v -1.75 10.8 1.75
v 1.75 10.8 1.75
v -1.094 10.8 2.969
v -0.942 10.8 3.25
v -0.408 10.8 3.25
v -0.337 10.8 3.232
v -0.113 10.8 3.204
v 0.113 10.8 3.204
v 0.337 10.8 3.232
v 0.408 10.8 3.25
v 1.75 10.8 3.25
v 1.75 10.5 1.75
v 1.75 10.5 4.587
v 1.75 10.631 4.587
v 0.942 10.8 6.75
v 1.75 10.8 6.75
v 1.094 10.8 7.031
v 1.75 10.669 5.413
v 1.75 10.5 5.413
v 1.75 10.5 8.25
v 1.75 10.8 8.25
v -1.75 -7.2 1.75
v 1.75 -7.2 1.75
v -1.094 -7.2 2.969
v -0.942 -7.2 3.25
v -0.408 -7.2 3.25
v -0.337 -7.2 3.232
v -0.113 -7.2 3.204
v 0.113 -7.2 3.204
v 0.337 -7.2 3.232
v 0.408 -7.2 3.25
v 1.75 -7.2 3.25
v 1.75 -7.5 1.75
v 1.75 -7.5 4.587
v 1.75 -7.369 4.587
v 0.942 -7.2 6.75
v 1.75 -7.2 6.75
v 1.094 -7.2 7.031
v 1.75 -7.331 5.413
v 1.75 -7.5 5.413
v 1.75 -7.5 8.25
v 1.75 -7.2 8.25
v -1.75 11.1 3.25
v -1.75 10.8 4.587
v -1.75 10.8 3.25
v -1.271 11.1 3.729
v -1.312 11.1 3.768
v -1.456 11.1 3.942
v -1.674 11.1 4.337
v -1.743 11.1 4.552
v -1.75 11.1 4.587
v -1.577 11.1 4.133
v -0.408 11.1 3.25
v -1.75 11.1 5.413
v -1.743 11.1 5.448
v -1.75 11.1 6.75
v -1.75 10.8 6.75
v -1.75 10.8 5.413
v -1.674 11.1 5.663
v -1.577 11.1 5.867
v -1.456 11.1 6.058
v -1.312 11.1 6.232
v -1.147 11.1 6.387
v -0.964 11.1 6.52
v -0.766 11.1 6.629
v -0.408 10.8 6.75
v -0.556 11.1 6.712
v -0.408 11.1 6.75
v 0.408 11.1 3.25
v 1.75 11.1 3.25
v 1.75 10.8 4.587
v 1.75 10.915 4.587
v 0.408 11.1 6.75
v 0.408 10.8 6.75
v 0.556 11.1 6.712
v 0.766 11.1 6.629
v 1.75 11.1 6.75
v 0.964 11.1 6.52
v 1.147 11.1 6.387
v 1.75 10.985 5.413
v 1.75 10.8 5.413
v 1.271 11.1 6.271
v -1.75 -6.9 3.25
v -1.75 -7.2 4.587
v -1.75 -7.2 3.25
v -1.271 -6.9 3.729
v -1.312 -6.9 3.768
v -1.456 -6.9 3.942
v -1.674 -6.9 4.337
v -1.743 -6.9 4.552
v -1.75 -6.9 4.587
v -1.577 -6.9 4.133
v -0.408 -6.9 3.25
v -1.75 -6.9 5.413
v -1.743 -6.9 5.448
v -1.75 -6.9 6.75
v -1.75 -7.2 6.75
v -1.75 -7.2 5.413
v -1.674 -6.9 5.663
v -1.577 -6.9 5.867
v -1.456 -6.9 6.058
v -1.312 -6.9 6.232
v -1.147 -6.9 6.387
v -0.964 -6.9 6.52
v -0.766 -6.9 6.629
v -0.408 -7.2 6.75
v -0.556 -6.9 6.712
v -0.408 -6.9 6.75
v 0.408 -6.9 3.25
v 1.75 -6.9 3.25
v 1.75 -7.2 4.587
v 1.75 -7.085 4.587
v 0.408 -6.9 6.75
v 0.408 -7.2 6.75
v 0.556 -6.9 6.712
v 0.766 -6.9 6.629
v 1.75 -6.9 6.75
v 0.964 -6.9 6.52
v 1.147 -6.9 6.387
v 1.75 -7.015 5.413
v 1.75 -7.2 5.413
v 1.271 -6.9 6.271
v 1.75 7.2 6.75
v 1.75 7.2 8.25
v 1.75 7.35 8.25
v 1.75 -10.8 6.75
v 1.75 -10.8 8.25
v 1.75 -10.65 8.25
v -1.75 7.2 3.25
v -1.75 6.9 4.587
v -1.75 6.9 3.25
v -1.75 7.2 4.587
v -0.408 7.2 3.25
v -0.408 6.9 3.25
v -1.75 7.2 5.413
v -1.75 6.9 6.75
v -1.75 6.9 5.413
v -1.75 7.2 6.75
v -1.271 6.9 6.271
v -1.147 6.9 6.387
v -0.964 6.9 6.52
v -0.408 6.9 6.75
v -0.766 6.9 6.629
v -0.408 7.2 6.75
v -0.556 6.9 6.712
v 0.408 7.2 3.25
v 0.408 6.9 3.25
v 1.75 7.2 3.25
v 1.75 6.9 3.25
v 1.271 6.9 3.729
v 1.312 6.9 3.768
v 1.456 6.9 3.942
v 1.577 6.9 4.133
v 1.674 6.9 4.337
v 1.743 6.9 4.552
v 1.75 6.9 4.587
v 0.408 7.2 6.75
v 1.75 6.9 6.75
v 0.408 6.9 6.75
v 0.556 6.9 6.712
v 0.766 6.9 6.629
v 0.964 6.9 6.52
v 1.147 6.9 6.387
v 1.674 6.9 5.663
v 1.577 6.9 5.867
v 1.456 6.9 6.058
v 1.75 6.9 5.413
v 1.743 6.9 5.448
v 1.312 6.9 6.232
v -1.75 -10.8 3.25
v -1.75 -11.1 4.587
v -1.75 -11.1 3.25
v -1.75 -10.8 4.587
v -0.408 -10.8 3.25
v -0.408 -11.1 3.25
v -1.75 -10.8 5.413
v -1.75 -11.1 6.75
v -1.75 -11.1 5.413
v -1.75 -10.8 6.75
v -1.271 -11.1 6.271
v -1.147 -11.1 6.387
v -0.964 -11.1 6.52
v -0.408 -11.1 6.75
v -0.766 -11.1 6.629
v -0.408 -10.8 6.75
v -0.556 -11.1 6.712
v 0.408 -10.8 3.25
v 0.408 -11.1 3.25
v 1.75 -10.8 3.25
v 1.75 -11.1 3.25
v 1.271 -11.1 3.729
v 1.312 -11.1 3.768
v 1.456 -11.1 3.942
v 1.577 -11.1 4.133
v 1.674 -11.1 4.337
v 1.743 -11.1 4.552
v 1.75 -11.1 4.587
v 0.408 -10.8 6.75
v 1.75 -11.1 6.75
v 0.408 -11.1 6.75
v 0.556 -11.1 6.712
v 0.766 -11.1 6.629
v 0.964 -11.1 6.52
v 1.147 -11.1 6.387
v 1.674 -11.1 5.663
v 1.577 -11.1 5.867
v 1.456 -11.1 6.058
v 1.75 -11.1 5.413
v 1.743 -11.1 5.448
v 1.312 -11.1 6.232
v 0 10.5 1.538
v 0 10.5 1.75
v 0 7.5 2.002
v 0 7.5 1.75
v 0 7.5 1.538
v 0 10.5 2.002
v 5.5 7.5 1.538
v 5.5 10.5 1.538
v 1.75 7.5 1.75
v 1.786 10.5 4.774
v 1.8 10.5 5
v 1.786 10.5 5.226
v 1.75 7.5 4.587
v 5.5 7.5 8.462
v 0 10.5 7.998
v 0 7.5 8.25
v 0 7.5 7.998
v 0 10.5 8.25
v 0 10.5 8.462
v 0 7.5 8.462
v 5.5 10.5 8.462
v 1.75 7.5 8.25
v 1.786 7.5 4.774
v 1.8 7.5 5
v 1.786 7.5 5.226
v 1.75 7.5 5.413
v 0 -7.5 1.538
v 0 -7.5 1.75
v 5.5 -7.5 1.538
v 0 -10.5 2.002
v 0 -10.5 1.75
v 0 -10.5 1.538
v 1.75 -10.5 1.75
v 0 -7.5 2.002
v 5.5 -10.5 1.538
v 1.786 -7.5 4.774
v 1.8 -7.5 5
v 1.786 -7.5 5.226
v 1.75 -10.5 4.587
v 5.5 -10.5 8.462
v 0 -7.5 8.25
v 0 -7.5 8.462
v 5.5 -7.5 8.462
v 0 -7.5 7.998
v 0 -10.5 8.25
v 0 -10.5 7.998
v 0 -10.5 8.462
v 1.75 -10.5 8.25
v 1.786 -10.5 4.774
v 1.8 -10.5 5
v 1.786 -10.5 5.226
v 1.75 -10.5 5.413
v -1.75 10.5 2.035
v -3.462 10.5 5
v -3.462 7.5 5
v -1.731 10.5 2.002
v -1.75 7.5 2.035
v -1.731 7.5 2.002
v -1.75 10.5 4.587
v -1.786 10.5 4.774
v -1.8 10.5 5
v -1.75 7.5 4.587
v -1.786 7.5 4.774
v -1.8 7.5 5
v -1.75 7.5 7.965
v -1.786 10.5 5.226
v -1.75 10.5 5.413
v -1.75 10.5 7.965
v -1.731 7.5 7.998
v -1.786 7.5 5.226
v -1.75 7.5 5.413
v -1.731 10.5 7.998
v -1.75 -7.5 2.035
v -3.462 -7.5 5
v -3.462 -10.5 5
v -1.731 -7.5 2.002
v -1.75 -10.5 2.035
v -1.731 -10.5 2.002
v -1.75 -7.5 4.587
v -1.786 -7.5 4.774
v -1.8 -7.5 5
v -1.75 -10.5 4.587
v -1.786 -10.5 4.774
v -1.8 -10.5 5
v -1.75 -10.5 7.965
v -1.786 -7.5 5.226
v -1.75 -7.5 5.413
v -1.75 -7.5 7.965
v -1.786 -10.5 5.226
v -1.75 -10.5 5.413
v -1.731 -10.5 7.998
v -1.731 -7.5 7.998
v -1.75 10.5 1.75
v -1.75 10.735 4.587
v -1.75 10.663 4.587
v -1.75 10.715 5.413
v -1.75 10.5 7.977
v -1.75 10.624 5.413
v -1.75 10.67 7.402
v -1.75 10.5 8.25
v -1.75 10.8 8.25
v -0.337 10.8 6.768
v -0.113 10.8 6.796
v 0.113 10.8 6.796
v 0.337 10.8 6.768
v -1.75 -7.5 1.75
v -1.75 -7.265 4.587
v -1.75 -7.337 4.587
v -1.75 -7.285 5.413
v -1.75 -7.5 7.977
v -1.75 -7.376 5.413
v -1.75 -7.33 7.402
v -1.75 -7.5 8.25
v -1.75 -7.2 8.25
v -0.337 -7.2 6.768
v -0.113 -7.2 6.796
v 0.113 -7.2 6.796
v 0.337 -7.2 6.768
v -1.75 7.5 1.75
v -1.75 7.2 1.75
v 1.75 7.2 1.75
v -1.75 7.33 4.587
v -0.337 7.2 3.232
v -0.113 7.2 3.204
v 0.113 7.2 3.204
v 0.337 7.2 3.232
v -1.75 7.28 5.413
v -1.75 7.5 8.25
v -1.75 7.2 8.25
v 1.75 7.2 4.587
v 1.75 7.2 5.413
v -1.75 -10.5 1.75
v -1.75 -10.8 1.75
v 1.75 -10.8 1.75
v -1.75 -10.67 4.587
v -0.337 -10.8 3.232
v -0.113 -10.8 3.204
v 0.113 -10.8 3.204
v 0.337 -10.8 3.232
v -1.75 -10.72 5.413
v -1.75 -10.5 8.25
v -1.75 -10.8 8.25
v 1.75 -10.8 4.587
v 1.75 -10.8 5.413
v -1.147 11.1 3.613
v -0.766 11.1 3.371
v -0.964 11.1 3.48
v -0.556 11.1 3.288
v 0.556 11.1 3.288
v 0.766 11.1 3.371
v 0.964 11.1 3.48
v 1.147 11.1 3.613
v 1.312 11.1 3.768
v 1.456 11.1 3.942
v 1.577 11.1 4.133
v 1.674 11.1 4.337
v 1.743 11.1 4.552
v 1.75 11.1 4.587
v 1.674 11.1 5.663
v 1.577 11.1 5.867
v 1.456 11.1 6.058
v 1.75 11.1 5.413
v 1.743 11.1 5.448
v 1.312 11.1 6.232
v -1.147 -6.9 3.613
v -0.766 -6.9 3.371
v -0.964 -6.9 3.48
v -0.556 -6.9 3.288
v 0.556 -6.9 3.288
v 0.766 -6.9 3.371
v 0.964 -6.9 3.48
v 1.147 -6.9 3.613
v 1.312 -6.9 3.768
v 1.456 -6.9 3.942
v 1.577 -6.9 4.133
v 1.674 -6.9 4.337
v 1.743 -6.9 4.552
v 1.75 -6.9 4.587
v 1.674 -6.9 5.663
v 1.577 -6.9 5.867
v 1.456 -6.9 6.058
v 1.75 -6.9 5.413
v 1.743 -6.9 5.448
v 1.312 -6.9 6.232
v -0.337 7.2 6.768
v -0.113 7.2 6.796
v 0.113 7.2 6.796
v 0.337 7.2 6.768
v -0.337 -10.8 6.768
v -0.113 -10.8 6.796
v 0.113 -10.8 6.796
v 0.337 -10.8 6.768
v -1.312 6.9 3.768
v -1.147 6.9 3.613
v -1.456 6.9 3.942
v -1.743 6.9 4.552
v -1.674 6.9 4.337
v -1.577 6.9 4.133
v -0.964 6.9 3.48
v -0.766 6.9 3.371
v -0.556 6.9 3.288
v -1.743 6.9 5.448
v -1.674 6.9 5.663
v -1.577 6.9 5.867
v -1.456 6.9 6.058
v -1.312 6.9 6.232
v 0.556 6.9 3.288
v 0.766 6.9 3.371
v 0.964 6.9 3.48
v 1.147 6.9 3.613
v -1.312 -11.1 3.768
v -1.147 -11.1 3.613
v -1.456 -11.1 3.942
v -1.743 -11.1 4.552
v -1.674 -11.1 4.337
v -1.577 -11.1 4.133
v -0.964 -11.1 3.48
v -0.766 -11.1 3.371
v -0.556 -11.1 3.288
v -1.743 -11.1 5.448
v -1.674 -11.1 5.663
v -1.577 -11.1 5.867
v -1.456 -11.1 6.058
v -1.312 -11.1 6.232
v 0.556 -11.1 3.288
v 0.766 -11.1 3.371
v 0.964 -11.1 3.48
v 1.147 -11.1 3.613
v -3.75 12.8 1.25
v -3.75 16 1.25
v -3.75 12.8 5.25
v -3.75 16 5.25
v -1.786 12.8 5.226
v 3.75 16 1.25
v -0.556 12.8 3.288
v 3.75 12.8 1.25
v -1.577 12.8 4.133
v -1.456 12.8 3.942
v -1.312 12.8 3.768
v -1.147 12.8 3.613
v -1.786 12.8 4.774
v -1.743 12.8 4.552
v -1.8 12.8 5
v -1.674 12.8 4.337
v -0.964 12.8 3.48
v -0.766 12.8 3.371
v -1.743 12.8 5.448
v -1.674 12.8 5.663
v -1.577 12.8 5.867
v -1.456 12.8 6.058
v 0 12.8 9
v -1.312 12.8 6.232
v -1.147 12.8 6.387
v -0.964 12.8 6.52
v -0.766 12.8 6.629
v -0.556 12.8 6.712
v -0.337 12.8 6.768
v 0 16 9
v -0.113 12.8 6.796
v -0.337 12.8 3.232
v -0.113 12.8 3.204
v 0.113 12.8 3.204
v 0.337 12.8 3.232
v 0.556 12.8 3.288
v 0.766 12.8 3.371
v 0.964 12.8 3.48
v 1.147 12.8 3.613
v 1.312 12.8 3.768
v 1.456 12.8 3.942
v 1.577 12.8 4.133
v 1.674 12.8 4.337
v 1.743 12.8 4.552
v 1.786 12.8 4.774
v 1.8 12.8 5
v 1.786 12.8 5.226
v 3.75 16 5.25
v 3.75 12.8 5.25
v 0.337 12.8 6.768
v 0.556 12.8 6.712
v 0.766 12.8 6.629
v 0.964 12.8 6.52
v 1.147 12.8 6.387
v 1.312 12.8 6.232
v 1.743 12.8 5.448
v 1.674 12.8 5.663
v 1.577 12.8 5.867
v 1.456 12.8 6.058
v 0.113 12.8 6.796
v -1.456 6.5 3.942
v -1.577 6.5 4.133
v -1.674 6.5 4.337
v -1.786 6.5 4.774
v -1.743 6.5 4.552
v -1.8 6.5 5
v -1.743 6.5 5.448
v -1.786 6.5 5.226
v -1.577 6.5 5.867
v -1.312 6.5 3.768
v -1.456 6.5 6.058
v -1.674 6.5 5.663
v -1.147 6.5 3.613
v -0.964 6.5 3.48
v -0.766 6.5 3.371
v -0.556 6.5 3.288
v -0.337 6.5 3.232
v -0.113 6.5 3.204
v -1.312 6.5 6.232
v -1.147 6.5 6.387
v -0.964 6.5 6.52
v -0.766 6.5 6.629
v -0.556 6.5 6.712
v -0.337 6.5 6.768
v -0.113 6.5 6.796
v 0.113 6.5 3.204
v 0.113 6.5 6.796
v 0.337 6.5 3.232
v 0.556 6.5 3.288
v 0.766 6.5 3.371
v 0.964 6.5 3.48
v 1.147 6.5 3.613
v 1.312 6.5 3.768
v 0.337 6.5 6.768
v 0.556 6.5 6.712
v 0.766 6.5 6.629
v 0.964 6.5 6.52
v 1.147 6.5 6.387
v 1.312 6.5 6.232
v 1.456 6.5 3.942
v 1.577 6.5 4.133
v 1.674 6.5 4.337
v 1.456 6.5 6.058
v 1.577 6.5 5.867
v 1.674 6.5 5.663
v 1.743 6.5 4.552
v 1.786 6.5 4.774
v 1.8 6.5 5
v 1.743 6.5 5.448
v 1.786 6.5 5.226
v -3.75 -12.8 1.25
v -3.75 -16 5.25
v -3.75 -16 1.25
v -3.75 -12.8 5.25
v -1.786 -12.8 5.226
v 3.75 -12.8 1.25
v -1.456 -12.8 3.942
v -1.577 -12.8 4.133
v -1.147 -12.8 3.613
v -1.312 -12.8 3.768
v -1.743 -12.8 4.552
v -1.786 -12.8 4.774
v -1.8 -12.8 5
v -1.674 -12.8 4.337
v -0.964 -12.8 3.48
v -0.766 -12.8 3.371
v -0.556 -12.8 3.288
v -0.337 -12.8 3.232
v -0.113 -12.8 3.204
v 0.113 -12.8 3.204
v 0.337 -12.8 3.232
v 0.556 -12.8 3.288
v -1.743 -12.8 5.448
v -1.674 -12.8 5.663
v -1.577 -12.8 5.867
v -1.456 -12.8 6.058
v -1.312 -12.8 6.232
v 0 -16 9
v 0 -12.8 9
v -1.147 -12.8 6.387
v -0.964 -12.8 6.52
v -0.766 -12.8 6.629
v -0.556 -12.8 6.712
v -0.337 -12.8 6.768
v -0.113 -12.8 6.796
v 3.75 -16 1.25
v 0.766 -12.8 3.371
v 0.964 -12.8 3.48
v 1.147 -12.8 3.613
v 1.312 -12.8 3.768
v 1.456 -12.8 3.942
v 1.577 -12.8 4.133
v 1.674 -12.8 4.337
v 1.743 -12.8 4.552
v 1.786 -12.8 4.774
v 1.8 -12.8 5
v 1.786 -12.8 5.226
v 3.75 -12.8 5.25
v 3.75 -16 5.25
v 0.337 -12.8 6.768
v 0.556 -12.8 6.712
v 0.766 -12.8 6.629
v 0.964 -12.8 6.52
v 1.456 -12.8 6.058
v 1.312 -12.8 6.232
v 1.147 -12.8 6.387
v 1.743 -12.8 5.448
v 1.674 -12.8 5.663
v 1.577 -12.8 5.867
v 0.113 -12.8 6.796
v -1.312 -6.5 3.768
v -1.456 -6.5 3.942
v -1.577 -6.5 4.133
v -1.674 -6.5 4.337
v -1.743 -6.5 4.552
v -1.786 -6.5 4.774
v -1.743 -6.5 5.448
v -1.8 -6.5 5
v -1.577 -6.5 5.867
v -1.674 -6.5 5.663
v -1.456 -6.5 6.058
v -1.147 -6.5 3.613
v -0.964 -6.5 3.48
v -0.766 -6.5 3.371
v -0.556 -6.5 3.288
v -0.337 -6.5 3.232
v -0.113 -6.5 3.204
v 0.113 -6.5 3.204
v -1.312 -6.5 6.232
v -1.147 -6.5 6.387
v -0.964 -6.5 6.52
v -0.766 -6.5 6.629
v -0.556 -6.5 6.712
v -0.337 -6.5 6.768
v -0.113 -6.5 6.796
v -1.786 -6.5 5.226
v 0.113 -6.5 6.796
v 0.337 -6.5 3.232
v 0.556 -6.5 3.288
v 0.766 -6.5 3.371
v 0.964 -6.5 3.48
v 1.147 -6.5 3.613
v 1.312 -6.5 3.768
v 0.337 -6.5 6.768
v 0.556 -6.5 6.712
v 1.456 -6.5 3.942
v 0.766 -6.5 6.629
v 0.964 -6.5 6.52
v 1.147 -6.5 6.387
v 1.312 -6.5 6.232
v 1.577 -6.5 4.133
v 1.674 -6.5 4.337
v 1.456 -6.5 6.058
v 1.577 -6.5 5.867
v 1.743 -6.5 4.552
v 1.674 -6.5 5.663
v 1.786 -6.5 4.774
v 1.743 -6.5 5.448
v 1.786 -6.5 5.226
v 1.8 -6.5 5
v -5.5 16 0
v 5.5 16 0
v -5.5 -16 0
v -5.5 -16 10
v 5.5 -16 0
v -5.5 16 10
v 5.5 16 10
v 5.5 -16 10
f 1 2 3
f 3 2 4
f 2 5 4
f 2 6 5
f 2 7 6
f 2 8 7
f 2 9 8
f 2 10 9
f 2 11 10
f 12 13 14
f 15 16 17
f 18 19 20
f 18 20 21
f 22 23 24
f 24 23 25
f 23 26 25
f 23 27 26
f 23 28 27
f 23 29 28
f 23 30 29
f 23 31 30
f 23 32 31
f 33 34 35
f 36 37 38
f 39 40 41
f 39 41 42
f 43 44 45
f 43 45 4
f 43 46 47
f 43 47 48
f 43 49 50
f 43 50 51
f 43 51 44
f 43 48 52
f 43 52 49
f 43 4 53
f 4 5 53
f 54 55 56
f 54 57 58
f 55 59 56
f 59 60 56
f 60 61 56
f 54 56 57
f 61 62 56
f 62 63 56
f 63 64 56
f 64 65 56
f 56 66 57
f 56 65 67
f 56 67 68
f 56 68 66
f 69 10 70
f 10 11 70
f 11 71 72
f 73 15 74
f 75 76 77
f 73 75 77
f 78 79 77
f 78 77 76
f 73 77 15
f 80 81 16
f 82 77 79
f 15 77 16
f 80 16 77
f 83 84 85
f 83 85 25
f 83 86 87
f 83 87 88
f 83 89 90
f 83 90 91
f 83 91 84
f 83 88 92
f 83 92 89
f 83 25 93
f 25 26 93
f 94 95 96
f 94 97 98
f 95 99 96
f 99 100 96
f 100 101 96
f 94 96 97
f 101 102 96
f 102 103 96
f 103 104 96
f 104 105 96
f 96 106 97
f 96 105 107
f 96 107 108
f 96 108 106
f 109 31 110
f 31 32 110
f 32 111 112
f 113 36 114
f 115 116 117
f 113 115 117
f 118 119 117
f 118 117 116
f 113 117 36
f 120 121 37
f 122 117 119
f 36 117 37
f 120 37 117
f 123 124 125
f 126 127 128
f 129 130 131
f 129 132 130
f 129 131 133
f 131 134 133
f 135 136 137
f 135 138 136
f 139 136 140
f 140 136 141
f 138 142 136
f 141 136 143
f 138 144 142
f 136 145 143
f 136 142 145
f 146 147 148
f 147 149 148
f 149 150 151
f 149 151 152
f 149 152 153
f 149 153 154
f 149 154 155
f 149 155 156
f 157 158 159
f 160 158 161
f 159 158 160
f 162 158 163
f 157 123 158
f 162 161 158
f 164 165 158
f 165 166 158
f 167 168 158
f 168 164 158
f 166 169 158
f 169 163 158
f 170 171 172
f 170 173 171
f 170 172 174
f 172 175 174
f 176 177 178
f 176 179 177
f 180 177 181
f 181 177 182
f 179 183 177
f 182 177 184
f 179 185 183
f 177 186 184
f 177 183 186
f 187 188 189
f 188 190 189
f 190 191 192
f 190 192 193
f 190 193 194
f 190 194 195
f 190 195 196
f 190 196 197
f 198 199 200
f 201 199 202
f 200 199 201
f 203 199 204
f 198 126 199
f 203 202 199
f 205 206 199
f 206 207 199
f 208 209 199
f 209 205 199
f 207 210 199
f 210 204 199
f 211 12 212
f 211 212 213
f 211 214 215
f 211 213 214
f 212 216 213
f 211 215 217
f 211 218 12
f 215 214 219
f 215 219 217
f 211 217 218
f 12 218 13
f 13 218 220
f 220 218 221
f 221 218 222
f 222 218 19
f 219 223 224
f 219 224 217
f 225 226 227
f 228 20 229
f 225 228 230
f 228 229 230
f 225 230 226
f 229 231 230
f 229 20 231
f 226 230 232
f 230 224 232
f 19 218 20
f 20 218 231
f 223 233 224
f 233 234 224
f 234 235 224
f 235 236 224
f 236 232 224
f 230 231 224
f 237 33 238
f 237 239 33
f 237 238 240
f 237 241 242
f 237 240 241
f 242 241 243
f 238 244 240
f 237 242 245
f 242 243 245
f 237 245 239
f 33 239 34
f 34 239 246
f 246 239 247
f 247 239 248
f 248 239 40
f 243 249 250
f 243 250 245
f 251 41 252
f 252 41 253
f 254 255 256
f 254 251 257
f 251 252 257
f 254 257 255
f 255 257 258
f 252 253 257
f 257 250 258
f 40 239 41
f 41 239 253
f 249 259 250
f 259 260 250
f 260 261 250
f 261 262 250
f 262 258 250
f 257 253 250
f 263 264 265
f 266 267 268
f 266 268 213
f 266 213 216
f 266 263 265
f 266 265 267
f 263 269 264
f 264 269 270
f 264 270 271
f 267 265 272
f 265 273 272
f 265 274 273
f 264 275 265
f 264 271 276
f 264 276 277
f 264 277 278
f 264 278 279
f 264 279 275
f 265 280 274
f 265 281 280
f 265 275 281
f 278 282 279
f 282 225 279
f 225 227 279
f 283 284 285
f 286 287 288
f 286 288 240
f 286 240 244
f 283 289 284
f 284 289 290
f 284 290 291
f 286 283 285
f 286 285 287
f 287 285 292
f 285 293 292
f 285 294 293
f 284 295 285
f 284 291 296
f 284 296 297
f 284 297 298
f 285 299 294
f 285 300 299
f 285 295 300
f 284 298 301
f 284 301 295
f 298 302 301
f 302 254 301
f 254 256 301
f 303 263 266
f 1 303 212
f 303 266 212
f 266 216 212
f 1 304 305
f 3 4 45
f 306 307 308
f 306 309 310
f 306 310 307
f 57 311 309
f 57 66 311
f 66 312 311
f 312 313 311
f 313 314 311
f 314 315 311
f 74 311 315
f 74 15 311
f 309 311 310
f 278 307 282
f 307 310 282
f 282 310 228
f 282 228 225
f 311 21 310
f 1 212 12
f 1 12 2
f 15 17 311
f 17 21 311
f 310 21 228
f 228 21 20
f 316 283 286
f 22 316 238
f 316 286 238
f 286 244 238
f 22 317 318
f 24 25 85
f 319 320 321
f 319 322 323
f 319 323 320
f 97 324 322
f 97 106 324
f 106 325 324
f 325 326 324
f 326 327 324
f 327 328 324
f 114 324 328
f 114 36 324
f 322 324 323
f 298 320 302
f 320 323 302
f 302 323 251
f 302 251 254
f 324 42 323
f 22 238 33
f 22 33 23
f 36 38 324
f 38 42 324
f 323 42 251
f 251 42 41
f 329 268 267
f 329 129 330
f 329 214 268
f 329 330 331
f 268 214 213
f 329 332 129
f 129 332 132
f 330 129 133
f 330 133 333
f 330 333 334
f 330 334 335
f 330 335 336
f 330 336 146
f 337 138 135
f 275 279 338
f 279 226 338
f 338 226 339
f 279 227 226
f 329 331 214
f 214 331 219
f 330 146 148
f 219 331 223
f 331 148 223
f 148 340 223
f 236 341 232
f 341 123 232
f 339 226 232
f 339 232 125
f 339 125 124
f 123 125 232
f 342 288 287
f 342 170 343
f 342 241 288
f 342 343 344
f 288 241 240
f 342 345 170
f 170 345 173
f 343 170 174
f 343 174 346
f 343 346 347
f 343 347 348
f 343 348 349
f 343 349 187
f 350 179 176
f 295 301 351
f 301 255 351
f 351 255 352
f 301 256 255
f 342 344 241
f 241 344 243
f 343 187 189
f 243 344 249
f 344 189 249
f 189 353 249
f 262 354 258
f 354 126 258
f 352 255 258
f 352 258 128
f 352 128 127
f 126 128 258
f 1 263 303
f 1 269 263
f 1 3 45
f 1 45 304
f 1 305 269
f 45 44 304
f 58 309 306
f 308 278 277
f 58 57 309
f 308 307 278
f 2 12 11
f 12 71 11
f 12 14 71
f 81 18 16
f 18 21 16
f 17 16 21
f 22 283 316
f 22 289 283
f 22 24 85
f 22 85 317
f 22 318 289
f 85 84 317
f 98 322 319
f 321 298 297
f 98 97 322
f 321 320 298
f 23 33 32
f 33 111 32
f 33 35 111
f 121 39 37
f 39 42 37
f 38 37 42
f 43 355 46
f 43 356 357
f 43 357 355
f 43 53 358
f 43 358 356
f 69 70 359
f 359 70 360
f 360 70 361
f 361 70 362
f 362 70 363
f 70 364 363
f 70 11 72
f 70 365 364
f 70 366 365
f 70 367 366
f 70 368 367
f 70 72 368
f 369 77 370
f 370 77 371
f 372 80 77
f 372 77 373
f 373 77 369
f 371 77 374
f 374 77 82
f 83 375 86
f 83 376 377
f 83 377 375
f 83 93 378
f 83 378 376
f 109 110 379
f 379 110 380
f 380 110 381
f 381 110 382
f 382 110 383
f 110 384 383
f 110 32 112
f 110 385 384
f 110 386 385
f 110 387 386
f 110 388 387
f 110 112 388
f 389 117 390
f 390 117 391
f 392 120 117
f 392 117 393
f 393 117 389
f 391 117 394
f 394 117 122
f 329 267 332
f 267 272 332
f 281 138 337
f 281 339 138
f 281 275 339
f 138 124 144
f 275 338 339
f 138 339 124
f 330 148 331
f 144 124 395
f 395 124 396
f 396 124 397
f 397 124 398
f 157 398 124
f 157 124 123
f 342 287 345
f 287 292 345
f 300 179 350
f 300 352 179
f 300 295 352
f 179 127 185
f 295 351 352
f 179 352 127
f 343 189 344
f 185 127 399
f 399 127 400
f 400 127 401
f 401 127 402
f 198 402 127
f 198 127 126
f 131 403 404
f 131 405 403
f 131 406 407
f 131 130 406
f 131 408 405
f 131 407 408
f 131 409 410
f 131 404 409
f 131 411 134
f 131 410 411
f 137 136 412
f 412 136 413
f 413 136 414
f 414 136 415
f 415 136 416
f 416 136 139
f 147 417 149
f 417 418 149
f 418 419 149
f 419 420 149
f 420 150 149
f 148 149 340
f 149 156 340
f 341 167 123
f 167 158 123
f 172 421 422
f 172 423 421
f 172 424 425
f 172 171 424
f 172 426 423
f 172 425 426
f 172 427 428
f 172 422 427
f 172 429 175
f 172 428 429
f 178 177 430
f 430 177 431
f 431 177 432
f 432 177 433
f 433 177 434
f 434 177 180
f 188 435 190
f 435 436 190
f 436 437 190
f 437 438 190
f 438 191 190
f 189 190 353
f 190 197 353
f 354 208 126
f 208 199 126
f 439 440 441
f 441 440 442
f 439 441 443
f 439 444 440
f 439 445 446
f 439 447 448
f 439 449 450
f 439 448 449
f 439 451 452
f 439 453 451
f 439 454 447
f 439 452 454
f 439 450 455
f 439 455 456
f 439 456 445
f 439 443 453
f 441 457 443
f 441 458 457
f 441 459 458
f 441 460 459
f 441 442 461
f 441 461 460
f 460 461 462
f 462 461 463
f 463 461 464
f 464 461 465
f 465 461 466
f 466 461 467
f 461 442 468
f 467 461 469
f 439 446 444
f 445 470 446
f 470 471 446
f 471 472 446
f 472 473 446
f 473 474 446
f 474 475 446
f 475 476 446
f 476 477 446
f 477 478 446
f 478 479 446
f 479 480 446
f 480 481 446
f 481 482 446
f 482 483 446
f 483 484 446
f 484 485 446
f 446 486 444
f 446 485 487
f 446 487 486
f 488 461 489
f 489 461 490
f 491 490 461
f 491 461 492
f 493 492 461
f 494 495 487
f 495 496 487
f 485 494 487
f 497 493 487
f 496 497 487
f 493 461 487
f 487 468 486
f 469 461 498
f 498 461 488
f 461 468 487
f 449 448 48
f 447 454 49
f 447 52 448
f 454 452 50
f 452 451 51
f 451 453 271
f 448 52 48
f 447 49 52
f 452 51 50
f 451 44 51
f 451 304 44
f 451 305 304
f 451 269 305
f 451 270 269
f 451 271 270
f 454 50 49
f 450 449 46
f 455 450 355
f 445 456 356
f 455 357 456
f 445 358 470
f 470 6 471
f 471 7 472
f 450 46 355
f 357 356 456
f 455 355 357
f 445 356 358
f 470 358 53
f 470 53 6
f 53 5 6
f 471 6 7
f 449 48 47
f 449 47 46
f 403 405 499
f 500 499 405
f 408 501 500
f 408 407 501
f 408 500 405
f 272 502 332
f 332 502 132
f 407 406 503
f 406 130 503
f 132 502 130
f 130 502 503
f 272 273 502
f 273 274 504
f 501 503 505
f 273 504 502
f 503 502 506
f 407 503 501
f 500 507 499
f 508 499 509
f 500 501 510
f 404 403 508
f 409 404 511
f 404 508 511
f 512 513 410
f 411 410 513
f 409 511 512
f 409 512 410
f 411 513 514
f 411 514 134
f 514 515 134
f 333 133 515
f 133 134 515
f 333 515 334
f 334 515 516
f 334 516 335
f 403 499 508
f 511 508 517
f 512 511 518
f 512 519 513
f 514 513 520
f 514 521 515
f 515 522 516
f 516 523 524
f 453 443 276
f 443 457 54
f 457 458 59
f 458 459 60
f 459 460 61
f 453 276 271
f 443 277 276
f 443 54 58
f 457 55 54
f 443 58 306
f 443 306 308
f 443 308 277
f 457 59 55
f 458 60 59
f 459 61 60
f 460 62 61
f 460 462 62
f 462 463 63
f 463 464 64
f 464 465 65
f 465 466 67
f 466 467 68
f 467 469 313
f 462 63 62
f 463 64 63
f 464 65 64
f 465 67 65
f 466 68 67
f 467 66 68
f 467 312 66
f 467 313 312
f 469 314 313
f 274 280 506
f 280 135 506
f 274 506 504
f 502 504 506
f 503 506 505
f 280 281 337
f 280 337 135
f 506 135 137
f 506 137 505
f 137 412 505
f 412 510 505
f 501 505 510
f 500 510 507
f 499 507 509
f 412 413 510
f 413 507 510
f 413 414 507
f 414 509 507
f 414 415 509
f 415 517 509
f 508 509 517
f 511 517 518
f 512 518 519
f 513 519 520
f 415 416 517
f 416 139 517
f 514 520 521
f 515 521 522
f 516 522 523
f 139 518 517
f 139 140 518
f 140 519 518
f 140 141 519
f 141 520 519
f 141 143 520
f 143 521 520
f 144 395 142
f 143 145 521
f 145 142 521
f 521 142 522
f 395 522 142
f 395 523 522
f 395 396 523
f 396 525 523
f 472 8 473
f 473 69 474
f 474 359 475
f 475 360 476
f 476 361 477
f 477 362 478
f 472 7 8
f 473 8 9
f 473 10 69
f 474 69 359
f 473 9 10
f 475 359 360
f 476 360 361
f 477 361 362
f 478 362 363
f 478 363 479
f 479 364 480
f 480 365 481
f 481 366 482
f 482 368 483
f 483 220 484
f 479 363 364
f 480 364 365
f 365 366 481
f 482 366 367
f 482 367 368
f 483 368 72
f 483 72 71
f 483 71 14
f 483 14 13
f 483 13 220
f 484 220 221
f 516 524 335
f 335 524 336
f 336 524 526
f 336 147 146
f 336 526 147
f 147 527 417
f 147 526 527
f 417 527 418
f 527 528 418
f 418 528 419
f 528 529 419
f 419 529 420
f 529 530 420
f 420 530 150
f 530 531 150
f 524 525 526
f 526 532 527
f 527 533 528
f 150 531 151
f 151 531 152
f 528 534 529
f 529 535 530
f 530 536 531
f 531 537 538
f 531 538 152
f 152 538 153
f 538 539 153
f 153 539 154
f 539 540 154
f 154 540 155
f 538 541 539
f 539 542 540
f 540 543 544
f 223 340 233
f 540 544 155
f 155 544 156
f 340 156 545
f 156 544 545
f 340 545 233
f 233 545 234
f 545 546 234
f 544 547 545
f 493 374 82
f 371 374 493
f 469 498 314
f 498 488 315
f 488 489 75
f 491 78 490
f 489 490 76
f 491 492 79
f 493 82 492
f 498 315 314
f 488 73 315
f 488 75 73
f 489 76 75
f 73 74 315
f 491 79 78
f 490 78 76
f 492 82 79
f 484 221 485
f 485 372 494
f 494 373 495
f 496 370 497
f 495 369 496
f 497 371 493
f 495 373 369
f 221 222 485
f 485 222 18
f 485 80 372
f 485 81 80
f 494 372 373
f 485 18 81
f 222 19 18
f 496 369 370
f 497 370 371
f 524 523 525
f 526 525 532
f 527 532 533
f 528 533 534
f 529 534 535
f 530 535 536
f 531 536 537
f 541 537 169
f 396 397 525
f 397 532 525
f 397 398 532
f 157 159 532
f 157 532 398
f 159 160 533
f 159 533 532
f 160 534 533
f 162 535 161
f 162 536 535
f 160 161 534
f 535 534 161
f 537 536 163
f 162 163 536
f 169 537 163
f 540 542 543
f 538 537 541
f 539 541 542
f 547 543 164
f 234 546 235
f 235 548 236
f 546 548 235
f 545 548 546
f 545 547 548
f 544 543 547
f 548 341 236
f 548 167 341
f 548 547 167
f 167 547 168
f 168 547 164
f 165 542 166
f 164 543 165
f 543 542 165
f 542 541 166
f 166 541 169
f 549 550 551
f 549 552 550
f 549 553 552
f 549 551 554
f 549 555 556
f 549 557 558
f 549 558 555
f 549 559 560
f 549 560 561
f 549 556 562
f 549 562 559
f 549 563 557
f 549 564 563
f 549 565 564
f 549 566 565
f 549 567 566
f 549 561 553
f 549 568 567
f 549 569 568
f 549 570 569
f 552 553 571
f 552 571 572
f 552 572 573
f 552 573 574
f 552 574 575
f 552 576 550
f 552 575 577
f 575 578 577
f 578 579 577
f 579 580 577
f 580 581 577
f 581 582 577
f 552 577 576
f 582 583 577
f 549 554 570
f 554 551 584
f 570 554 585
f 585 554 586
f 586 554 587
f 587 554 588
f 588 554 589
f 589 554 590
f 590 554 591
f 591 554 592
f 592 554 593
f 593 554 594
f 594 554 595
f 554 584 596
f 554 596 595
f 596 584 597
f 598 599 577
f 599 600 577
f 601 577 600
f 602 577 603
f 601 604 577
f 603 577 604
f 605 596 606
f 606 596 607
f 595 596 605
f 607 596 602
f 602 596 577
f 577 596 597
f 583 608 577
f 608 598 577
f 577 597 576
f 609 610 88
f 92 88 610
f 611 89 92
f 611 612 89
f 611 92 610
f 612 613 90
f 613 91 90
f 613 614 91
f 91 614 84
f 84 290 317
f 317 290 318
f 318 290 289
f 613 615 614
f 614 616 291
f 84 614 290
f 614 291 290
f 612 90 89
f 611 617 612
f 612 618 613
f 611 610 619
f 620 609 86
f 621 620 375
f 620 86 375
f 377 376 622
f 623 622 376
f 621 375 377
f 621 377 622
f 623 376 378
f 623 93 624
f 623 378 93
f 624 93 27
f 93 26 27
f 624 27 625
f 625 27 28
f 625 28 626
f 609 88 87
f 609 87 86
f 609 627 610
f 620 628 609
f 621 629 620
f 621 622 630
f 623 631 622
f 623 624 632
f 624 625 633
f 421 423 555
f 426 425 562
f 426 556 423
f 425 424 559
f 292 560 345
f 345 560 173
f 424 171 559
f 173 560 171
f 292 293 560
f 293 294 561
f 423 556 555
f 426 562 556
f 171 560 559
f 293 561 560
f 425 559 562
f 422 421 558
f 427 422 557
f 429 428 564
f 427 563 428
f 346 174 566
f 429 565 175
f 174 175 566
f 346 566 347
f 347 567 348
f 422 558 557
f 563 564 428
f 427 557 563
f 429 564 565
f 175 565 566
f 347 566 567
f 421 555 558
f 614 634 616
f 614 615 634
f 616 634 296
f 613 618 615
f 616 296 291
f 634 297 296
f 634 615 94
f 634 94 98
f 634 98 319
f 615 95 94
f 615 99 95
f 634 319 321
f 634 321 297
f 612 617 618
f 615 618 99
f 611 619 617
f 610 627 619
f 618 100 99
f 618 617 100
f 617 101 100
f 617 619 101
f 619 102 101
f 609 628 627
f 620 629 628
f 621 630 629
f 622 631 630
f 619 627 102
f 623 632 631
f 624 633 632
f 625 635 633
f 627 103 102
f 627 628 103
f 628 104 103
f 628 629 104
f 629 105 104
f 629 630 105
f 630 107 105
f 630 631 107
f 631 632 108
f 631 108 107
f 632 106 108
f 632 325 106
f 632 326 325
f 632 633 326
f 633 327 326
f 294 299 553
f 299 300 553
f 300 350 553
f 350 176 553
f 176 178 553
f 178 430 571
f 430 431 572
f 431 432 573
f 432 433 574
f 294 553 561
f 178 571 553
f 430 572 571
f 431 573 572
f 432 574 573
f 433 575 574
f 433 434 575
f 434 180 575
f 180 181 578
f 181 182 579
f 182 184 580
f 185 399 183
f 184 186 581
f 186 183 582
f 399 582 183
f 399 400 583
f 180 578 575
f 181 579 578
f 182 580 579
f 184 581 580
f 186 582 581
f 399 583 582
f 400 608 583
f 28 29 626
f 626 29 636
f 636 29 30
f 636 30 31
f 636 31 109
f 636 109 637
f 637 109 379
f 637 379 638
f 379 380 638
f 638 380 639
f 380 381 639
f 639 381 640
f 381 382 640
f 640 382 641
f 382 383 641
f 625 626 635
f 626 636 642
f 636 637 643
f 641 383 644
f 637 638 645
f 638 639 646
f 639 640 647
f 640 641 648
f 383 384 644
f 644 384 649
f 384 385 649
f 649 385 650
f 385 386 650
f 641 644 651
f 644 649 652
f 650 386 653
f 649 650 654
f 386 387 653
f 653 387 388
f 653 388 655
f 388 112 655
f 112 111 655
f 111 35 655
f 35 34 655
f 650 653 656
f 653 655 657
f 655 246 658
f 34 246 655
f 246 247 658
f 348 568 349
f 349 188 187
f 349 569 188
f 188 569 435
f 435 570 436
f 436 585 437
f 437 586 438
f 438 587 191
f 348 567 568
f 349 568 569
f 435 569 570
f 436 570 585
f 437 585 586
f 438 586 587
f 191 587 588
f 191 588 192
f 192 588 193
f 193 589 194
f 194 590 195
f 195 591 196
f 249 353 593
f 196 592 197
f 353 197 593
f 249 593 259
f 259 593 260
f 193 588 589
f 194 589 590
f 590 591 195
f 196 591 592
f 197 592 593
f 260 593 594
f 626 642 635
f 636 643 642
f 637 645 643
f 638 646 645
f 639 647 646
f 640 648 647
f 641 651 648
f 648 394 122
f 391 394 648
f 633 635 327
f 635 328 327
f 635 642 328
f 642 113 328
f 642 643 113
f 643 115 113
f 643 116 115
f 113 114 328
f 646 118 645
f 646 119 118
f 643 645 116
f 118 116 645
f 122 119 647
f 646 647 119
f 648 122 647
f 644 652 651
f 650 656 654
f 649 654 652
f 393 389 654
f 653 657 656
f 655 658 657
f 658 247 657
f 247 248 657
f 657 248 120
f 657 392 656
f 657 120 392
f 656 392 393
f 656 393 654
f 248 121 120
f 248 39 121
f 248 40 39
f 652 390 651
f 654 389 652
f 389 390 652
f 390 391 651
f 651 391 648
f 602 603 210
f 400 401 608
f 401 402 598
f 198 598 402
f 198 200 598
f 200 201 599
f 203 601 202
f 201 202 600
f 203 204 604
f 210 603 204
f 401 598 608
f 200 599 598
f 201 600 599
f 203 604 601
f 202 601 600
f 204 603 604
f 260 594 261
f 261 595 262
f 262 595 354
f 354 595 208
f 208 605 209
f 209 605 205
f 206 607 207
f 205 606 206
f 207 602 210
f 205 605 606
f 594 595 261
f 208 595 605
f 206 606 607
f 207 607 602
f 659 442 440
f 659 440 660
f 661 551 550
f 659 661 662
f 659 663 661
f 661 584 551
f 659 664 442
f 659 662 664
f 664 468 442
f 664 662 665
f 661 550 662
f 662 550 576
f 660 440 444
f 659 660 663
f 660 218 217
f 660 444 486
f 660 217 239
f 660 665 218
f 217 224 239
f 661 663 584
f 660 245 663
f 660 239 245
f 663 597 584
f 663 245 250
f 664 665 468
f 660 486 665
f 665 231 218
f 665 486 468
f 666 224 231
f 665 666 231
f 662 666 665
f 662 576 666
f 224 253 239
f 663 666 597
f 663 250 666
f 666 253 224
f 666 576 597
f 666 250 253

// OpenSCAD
$fn = 50;

difference() {
	union() {
		translate(v = [0, 0, 0]) {
			rotate(a = [0, 0, 0]) {
				difference() {
					union() {
						translate(v = [0, 16.0, 0]) {
							rotate(a = [90, 0, 0]) {
								difference() {
									union() {
										translate(v = [-5.5, 0, 0]) {
											cube(size = [11.0, 10.0, 32.0]);
										}
									}
									union() {
										translate(v = [0, 5.0, 5.5]) {
											rotate(a = [0, 0, 0]) {
												difference() {
													union() {
														translate(v = [-1.75, -3.25, -0.3]) {
															cube(size = [3.5, 6.5, 0.3]);
														}
														translate(v = [-1.75, -1.75, -0.6]) {
															cube(size = [3.5, 3.5, 0.3]);
														}
														translate(v = [-1.75, -3.25, 3]) {
															cube(size = [3.5, 6.5, 0.3]);
														}
														translate(v = [-1.75, -1.75, 3.3]) {
															cube(size = [3.5, 3.5, 0.3]);
														}
														translate(v = [0.0, -3.4619999999999997, 0]) {
															cube(size = [20, 6.9239999999999995, 3]);
														}
														linear_extrude(height = 3) {
															polygon(points = [[3.4619999999999997, 0.0], [1.7310000000000003, 2.9981799479017264], [-1.7309999999999992, 2.9981799479017264], [-3.4619999999999997, 4.2397272186481365e-16], [-1.7310000000000014, -2.998179947901726], [1.7309999999999977, -2.9981799479017277]]);
														}
														translate(v = [-1.75, -3.25, -0.3]) {
															cube(size = [3.5, 6.5, 0.3]);
														}
														translate(v = [-1.75, -1.75, -0.6]) {
															cube(size = [3.5, 3.5, 0.3]);
														}
														translate(v = [-1.75, -3.25, 3]) {
															cube(size = [3.5, 6.5, 0.3]);
														}
														translate(v = [-1.75, -1.75, 3.3]) {
															cube(size = [3.5, 3.5, 0.3]);
														}
														translate(v = [-1.75, -3.25, -0.3]) {
															cube(size = [3.5, 6.5, 0.3]);
														}
														translate(v = [-1.75, -1.75, -0.6]) {
															cube(size = [3.5, 3.5, 0.3]);
														}
														translate(v = [-1.75, -3.25, 3]) {
															cube(size = [3.5, 6.5, 0.3]);
														}
														translate(v = [-1.75, -1.75, 3.3]) {
															cube(size = [3.5, 3.5, 0.3]);
														}
													}
													union();
												}
											}
										}
										translate(v = [0, 5.0, 23.5]) {
											rotate(a = [0, 0, 0]) {
												difference() {
													union() {
														translate(v = [-1.75, -3.25, -0.3]) {
															cube(size = [3.5, 6.5, 0.3]);
														}
														translate(v = [-1.75, -1.75, -0.6]) {
															cube(size = [3.5, 3.5, 0.3]);
														}
														translate(v = [-1.75, -3.25, 3]) {
															cube(size = [3.5, 6.5, 0.3]);
														}
														translate(v = [-1.75, -1.75, 3.3]) {
															cube(size = [3.5, 3.5, 0.3]);
														}
														translate(v = [0.0, -3.4619999999999997, 0]) {
															cube(size = [20, 6.9239999999999995, 3]);
														}
														linear_extrude(height = 3) {
															polygon(points = [[3.4619999999999997, 0.0], [1.7310000000000003, 2.9981799479017264], [-1.7309999999999992, 2.9981799479017264], [-3.4619999999999997, 4.2397272186481365e-16], [-1.7310000000000014, -2.998179947901726], [1.7309999999999977, -2.9981799479017277]]);
														}
														translate(v = [-1.75, -3.25, -0.3]) {
															cube(size = [3.5, 6.5, 0.3]);
														}
														translate(v = [-1.75, -1.75, -0.6]) {
															cube(size = [3.5, 3.5, 0.3]);
														}
														translate(v = [-1.75, -3.25, 3]) {
															cube(size = [3.5, 6.5, 0.3]);
														}
														translate(v = [-1.75, -1.75, 3.3]) {
															cube(size = [3.5, 3.5, 0.3]);
														}
														translate(v = [-1.75, -3.25, -0.3]) {
															cube(size = [3.5, 6.5, 0.3]);
														}
														translate(v = [-1.75, -1.75, -0.6]) {
															cube(size = [3.5, 3.5, 0.3]);
														}
														translate(v = [-1.75, -3.25, 3]) {
															cube(size = [3.5, 6.5, 0.3]);
														}
														translate(v = [-1.75, -1.75, 3.3]) {
															cube(size = [3.5, 3.5, 0.3]);
														}
													}
													union();
												}
											}
										}
										translate(v = [0, 0, -0.1]) {
											linear_extrude(height = 3.3000000000000003) {
												polygon(points = [[-3.75, 1.25], [3.75, 1.25], [3.75, 5.25], [0, 9.0], [-3.75, 5.25]]);
											}
										}
										translate(v = [0, 5.0, -0.1]) {
											cylinder(h = 9.6, r = 1.8);
										}
										translate(v = [0, 0, 28.8]) {
											linear_extrude(height = 3.3000000000000003) {
												polygon(points = [[-3.75, 1.25], [3.75, 1.25], [3.75, 5.25], [0, 9.0], [-3.75, 5.25]]);
											}
										}
										translate(v = [0, 5.0, 22.5]) {
											cylinder(h = 9.6, r = 1.8);
										}
									}
								}
							}
						}
					}
					union();
				}
			}
		}
	}
	union();
}
